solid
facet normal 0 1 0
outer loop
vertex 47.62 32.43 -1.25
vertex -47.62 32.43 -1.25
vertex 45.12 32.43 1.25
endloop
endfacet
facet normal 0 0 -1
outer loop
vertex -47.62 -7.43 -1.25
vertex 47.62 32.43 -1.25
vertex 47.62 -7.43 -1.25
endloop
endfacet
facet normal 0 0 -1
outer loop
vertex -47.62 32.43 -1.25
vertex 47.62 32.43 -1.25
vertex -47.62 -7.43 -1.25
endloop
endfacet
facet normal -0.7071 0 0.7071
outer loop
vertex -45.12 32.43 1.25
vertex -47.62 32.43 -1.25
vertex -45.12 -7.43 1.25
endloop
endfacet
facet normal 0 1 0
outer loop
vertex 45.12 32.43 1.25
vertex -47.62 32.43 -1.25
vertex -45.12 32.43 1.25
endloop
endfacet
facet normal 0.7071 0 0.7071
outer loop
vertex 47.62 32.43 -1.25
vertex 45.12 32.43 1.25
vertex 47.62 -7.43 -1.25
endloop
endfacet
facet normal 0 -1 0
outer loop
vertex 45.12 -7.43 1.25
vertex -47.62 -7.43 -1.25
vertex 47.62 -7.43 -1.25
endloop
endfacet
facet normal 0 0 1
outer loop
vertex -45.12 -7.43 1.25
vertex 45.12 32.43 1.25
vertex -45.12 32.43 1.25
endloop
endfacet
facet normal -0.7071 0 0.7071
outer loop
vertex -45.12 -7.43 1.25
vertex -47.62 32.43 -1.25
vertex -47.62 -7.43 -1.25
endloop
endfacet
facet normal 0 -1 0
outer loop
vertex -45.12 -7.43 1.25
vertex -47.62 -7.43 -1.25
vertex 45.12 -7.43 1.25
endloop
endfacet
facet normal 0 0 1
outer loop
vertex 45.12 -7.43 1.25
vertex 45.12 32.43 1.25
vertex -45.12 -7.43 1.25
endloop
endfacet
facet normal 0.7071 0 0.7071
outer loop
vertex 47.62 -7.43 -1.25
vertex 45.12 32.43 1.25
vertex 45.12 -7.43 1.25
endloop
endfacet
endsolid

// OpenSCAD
/*  Copyright (C) 2020  Adam Green (https://github.com/adamgreen)

    This program is free software; you can redistribute it and/or
    modify it under the terms of the GNU General Public License
    as published by the Free Software Foundation; either version 2
    of the License, or (at your option) any later version.

    This program is distributed in the hope that it will be useful,
    but WITHOUT ANY WARRANTY; without even the implied warranty of
    MERCHANTABILITY or FITNESS FOR A PARTICULAR PURPOSE.  See the
    GNU General Public License for more details.
*/
// Power Distribution Board Panel
// Contains LCD, Power and Manual switches.
include <Common.scad>

rotate([0, 180, 0])
    Door(clearance=0);
